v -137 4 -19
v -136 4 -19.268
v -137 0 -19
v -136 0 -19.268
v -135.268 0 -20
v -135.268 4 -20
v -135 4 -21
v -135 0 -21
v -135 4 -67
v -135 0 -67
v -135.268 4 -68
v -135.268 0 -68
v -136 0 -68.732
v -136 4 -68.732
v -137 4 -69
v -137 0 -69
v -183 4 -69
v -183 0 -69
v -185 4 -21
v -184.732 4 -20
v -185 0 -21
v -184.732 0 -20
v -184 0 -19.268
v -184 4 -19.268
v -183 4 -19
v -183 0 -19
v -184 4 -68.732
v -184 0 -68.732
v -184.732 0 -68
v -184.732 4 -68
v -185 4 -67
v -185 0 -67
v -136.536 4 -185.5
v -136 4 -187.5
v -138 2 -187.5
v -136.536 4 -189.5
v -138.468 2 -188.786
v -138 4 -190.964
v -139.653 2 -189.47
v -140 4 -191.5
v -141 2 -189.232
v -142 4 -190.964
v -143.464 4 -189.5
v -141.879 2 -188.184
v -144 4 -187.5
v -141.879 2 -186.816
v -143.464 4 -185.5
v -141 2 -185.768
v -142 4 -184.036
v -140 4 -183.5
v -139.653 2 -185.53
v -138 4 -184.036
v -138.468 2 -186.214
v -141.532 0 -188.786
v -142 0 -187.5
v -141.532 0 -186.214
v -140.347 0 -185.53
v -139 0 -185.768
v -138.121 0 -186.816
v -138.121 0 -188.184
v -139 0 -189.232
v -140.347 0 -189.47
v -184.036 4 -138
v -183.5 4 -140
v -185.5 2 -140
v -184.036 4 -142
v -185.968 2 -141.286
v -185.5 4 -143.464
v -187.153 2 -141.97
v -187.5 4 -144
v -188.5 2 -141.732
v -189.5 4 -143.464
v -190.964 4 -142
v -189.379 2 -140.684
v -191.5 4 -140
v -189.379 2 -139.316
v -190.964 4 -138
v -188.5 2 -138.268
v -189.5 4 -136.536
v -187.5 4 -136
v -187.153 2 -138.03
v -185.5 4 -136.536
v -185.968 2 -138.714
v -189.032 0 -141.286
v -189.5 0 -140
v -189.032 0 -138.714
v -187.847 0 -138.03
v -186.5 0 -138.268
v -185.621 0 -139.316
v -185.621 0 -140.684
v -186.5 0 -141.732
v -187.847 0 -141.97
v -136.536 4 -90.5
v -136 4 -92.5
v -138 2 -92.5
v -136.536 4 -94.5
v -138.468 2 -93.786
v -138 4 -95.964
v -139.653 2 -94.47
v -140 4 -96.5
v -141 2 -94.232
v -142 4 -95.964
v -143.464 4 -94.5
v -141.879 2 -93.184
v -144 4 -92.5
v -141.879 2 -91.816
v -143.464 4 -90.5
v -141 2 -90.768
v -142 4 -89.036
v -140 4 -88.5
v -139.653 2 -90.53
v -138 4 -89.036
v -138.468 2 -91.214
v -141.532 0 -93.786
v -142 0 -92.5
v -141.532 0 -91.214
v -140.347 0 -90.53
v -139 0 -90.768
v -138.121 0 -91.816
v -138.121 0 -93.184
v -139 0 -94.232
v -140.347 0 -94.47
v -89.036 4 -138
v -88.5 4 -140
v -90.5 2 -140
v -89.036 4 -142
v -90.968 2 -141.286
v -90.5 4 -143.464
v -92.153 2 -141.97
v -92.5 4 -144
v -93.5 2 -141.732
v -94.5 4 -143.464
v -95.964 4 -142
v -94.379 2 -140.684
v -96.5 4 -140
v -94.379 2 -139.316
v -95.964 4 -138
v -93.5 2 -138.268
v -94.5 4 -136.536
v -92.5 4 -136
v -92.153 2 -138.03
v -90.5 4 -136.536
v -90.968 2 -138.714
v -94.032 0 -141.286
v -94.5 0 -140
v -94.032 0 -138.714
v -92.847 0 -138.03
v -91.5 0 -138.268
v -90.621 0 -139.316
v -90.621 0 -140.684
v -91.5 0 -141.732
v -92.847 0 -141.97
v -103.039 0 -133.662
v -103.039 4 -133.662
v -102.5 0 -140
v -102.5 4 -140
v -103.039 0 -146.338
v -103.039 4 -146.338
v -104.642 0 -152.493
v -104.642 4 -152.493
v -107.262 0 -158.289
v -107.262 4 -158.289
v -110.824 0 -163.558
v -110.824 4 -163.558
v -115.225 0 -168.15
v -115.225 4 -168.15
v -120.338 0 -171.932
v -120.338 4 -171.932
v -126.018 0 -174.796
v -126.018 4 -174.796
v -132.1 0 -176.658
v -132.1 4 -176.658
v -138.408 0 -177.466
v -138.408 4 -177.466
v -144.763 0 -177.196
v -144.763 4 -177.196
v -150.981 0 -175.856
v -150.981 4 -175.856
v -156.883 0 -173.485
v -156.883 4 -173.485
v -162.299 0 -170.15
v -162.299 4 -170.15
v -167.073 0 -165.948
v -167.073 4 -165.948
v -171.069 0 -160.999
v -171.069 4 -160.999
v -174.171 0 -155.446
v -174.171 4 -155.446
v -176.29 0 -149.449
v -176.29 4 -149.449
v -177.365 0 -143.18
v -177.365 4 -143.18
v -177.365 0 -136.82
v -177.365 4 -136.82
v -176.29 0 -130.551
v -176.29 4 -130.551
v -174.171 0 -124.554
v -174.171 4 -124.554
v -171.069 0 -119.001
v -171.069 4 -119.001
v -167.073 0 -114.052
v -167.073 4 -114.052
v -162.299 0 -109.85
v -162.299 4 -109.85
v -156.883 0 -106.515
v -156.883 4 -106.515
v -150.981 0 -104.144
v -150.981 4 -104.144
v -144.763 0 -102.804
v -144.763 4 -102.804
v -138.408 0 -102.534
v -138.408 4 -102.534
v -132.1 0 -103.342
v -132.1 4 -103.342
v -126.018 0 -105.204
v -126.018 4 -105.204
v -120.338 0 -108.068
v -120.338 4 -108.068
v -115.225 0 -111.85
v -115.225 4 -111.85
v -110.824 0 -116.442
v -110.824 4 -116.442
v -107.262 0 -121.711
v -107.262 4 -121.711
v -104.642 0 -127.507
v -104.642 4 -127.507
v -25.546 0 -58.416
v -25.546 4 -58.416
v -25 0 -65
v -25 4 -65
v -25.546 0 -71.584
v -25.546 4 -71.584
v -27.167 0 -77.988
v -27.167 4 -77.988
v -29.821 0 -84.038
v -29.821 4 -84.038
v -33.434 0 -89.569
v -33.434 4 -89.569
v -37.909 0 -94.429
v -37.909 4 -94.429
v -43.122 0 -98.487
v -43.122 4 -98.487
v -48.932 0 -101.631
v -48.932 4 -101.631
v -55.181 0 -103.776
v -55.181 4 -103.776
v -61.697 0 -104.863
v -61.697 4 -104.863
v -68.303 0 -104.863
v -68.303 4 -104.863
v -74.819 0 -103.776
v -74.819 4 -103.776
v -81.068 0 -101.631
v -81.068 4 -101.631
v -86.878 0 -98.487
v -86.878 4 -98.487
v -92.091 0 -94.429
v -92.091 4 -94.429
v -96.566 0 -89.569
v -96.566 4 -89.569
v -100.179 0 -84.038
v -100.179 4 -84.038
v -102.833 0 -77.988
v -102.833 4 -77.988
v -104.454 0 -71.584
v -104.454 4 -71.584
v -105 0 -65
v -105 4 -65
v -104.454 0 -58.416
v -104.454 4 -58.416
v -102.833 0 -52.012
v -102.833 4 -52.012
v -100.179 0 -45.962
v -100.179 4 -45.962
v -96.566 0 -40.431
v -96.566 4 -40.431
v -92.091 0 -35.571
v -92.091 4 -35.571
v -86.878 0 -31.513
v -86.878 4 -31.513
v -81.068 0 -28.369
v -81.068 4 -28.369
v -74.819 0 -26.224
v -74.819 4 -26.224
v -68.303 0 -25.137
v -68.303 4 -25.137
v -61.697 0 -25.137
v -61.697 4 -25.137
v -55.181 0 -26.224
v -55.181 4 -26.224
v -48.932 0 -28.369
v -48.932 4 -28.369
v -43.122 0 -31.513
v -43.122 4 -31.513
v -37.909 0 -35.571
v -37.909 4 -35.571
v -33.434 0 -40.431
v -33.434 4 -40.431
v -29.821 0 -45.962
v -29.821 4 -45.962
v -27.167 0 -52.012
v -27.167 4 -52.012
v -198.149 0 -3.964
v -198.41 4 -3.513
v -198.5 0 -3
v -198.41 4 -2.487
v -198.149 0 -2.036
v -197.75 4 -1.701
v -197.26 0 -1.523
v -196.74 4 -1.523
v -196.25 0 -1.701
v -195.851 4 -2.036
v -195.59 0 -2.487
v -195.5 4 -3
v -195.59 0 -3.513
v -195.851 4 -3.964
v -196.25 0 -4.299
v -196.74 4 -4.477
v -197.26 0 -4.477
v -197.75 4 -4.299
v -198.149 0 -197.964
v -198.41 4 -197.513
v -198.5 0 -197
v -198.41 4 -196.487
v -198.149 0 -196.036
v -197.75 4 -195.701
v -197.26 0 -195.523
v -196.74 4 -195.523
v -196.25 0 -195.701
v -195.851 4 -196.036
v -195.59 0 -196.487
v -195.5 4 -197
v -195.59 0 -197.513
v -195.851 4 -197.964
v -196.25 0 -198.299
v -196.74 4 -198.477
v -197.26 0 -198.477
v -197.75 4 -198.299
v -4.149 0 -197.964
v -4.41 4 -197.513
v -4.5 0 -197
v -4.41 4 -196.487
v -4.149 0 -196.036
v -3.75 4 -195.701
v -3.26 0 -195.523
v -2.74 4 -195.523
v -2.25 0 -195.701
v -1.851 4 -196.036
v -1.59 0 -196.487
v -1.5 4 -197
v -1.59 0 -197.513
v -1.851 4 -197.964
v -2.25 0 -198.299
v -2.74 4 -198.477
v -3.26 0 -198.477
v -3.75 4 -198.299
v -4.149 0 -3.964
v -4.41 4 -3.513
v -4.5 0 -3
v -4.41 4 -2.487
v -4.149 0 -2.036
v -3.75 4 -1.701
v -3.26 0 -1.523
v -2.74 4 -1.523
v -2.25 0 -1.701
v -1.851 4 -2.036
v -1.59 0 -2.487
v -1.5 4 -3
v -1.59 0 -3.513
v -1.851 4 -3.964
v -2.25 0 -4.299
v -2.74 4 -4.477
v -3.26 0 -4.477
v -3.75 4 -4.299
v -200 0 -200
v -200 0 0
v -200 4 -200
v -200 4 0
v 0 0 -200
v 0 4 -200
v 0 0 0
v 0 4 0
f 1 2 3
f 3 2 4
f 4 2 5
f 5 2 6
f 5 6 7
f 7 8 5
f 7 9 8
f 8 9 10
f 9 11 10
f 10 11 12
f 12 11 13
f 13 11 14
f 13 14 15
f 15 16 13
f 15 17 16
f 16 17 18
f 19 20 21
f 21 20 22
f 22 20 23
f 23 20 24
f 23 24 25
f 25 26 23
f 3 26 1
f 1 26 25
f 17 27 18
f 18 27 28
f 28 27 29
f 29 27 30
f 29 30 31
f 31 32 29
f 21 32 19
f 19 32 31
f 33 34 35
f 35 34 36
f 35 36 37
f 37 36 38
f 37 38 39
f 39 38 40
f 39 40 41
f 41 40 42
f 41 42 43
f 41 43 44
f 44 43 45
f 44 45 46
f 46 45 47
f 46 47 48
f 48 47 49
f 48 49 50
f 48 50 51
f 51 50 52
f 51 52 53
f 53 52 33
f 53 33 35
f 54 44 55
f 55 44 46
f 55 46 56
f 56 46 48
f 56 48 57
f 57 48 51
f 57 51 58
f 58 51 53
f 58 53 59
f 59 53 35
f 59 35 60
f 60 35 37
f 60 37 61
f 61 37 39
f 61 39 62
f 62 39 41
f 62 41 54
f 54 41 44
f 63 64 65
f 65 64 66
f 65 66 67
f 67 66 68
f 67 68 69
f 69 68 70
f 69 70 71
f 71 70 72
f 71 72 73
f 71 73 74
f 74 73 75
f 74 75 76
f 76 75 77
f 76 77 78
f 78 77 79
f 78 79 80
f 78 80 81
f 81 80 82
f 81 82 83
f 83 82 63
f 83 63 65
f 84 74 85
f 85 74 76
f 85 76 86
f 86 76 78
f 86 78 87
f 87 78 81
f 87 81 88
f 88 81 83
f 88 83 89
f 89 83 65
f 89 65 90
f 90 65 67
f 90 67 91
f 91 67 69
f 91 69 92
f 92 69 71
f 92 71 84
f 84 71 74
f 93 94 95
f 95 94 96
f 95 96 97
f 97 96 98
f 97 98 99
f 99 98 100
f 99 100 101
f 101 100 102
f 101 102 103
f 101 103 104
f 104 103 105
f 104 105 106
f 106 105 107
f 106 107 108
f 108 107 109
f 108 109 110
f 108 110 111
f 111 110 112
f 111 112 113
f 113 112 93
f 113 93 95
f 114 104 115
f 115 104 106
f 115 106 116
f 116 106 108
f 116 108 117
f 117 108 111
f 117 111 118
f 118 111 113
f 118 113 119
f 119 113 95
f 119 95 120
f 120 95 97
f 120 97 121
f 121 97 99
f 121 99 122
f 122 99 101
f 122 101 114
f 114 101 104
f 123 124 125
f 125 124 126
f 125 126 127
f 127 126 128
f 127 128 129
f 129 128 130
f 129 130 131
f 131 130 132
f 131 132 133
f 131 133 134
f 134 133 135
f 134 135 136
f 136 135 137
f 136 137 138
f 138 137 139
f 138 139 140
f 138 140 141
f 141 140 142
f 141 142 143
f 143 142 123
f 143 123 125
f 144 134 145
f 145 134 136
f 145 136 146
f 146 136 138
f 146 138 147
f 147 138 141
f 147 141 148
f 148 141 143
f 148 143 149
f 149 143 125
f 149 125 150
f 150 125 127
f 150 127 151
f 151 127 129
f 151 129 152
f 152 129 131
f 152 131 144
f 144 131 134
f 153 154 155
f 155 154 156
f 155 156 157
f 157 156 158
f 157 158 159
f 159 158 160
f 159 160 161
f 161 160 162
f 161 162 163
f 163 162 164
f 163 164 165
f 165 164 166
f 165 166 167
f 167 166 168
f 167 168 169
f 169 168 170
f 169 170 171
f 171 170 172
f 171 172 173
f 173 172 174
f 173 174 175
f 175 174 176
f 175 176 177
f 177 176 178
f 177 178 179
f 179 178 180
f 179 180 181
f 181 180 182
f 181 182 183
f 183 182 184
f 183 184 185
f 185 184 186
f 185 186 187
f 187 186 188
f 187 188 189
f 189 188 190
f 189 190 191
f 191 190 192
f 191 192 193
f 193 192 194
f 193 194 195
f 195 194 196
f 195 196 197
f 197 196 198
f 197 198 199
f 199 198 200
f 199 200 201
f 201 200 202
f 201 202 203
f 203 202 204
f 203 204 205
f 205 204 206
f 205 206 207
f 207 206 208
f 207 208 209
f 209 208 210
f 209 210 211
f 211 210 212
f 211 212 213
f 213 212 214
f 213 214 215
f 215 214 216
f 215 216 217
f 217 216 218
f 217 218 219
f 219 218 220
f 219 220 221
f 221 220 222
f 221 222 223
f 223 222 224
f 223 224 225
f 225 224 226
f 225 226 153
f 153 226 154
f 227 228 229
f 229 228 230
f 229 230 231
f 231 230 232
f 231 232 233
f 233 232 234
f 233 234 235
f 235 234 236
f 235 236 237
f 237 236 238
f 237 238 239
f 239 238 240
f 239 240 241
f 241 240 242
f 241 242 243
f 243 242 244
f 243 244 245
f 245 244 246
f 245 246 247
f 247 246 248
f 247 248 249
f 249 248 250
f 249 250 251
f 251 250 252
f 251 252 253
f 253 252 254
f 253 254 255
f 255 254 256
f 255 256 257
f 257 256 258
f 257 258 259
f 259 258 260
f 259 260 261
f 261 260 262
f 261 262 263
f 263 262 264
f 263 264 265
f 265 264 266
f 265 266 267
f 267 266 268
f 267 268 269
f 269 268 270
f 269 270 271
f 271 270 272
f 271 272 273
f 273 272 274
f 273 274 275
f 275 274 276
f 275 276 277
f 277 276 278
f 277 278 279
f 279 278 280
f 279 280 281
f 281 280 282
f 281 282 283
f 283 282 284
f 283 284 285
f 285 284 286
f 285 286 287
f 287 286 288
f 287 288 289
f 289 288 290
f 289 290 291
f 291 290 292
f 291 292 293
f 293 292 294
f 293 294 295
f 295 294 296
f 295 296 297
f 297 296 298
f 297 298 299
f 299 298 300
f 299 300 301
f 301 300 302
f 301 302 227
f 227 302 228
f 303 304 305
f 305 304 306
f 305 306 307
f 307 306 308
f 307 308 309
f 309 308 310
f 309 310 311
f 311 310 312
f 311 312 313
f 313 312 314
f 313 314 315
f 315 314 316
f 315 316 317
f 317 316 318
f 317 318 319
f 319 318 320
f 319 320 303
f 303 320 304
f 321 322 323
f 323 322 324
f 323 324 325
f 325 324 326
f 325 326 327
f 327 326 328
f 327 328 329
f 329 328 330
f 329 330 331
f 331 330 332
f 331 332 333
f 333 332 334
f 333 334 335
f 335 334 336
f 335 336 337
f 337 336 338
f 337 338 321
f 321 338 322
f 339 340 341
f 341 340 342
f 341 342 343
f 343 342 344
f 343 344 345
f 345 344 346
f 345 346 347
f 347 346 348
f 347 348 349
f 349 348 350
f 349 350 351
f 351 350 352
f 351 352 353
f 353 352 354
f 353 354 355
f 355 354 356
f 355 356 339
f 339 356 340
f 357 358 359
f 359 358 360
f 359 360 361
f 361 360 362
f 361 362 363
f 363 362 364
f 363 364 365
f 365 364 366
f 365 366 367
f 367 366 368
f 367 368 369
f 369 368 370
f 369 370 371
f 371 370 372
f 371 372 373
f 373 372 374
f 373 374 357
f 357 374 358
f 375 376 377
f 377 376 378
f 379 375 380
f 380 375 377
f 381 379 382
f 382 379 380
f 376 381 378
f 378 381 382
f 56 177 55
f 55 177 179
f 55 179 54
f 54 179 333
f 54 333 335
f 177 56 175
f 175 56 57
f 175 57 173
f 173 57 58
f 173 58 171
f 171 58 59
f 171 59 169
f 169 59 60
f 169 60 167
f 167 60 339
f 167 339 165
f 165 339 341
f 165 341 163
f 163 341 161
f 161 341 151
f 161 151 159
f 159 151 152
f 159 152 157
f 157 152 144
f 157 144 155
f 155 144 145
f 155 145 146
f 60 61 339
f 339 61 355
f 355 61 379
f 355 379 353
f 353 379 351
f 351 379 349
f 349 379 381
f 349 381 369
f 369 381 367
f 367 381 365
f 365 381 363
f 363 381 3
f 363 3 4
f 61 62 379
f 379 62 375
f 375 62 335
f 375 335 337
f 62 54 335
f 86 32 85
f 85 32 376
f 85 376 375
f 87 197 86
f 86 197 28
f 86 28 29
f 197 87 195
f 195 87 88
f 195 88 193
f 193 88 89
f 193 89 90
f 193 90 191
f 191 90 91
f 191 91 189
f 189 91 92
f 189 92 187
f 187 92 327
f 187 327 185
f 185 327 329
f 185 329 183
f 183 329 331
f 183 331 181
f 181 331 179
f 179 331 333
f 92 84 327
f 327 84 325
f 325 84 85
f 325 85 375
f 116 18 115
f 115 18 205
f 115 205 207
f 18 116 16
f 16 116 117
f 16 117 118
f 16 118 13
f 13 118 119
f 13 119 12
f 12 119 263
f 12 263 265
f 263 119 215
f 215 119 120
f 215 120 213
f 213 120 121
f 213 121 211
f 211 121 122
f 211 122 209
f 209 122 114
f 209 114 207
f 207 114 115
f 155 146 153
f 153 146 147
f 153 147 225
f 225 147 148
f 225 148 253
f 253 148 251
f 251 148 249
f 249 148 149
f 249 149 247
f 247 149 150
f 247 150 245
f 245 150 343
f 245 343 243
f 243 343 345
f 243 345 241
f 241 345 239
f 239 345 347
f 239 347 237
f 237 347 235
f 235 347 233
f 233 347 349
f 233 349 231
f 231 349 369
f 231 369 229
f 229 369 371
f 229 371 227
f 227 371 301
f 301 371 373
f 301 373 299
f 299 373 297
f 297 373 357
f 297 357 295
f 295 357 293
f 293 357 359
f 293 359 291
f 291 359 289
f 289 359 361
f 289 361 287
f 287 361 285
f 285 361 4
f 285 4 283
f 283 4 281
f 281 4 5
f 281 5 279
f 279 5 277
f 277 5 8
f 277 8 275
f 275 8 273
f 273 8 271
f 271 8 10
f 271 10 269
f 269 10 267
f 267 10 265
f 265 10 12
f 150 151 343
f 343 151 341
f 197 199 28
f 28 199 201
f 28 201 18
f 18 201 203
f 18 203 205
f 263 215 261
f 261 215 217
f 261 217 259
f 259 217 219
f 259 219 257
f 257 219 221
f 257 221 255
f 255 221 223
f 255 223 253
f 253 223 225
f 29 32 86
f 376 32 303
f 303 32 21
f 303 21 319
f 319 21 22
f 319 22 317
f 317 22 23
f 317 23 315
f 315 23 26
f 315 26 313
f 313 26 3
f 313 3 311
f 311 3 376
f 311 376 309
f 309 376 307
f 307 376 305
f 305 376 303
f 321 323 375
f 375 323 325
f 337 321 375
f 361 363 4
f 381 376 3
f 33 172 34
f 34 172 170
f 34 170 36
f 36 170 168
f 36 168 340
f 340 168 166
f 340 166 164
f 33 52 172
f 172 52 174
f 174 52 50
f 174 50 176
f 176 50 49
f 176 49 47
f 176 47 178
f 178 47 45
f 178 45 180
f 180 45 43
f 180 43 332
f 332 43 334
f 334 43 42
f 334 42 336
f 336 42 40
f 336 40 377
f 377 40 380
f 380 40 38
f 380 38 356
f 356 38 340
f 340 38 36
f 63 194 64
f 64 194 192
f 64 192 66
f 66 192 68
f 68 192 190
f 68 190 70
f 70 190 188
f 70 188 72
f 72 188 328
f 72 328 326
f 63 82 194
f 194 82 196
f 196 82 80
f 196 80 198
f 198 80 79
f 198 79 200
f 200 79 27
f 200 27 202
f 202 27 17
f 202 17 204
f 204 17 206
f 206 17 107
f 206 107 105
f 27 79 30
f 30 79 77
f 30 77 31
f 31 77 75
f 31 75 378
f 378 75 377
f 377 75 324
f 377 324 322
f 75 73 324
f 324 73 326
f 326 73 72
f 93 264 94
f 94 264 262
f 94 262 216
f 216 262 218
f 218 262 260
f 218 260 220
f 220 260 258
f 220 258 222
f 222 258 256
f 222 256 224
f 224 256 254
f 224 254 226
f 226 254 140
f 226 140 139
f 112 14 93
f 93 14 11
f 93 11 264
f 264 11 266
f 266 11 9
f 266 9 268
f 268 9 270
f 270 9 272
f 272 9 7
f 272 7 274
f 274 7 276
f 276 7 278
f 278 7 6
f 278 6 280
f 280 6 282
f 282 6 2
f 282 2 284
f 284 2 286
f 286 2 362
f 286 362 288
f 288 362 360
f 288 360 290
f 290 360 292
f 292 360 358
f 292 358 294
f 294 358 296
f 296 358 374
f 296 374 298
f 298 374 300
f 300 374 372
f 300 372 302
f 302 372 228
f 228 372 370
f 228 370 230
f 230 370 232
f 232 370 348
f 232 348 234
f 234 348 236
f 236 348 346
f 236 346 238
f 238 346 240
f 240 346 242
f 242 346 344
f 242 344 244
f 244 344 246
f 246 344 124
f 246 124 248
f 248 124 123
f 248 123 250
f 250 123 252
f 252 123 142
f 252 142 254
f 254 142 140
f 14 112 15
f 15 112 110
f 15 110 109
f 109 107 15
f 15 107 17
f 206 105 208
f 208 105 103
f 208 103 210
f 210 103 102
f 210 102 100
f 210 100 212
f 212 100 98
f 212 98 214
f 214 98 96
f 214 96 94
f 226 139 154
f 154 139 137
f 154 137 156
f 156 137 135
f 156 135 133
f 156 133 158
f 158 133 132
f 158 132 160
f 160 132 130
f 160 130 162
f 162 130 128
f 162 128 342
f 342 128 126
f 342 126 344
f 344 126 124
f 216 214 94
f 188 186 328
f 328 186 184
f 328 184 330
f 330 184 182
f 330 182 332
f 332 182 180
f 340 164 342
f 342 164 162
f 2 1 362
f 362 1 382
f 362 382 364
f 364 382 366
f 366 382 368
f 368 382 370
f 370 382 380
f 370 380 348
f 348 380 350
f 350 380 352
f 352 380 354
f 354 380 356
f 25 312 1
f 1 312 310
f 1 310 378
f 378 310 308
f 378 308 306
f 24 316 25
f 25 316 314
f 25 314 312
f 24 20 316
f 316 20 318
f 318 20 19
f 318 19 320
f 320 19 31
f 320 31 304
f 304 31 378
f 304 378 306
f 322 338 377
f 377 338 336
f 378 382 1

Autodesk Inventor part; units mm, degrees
ref_plane "YZ Plane" through (0, 0, 0) normal (1, 0, 0) x (0, 1, 0)
ref_plane "XZ Plane" through (0, 0, 0) normal (0, 1, 0) x (-1, 0, 0)
ref_plane "XY Plane" through (0, 0, 0) normal (0, 0, 1) x (1, 0, 0)
sketch "Sketch1" plane through (0, 0, 0) normal (0, 1, 0) x (-1, 0, 0)
  line L0 (0, 0) -> (200, 0)
  line L1 (200, 0) -> (200, -200)
  line L2 (200, -200) -> (0, -200)
  line L3 (0, -200) -> (0, 0)
  dimension "d0" = 200
  dimension "d1" = 200
extrude "Extrusion1" add sketch "Sketch1" along normal blind 4
sketch "Sketch2" plane through (0, 4, 0) normal (0, 1, 0) x (1, 0, 0)
  circle A0 centre (-197, 197) radius 1.5
  line L0 (0, 200) -> (-200, 200)
  line L1 (-200, 200) -> (-200, 0)
  circle A1 centre (-197, 3) radius 1.5
  line L2 (-200, 0) -> (0, 0)
  circle A2 centre (-3, 197) radius 1.5
  line L3 (0, 0) -> (0, 200)
  circle A3 centre (-3, 3) radius 1.5
  dimension "d4" = 3
  dimension "d5" = 3
  dimension "d6" = 3
  dimension "d7" = 3
  dimension "d8" = 3
  dimension "d9" = 3
  dimension "d10" = 3
  dimension "d11" = 3
  dimension "d12" = 3
  dimension "d13" = 3
  dimension "d14" = 3
  dimension "d15" = 3
hole "Hole1" at (-197, 4, -197) at (-3, 4, -197) at (-197, 4, -3) at (-3, 4, -3) direction (0, -1, 0) diameter 3 end through all
sketch "Sketch3" plane through (0, 4, 0) normal (0, 1, 0) x (1, 0, 0)
  circle A0 centre (-65, 65) radius 40
  line L0 (0, 0) -> (0, 200) projected
  line L1 (-200, 0) -> (0, 0) projected
  circle A1 centre (-140, 140) radius 37.5
  line L2 (0, 200) -> (-200, 200) projected
  line L3 (-200, 200) -> (-200, 0) projected
  circle A2 centre (-140, 140) radius 55
  line L4 (-185, 78) -> (-135, 78)
  line L5 (-135, 78) -> (-135, 10)
  line L6 (-135, 10) -> (-185, 10)
  line L7 (-185, 10) -> (-185, 78)
  circle A3 centre (-65, 65) radius 50
  circle A4 centre (-65, 65) radius 60
  line L8 (-185, 19) -> (-135, 19)
  line L9 (-135, 19) -> (-135, 69)
  line L10 (-135, 69) -> (-185, 69)
  line L11 (-185, 69) -> (-185, 19)
  dimension "d23" = 80
  dimension "d24" = 65
  dimension "d25" = 65
  dimension "d26" = 75
  dimension "d29" = 140
  dimension "d30" = 140
  dimension "d31" = 110
  dimension "d32" = 50
  dimension "d33" = 68
  dimension "d34" = 10
  dimension "d59" = 100
  dimension "d60" = 120
  dimension "d61" = 135
  dimension "d62" = 50
  dimension "d63" = 50
  dimension "d64" = 9
extrude "Extrusion2" cut sketch "Sketch3" against normal through all contours A0 | A1 | L10 L5 L8 L7
sketch "Sketch4" plane through (0, 4, 0) normal (0, 1, 0) x (1, 0, 0)
  circle A0 centre (-140, 140) radius 37.5 projected
  circle A1 centre (-140, 140) radius 47.5
  circle A2 centre (-140, 187.5) radius 2
  circle A3 centre (-187.5, 140) radius 2
  circle A4 centre (-140, 92.5) radius 2
  circle A5 centre (-92.5, 140) radius 2
  point P0 (0, 0)
  dimension "d38" = 95
  dimension "d39" = 4
  dimension "d42" = 360
hole "Hole2" at (-187.5, 4, -140) at (-140, 4, -92.5) at (-140, 4, -187.5) at (-92.5, 4, -140) direction (0, -1, 0) diameter 4 end through all countersink diameter 8 countersink angle 90
thread "Thread1" size "M4x0.7" class "6H" standard "ANSI Metric M Profile" full length
thread "Thread2" size "M4x0.7" class "6H" standard "ANSI Metric M Profile" full length
thread "Thread3" size "M4x0.7" class "6H" standard "ANSI Metric M Profile" full length
thread "Thread4" size "M4x0.7" class "6H" standard "ANSI Metric M Profile" full length
thread "Thread5" size "M3x0.5" class "6H" standard "ANSI Metric M Profile" full length
thread "Thread6" size "M3x0.5" class "6H" standard "ANSI Metric M Profile" full length
thread "Thread7" size "M3x0.5" class "6H" standard "ANSI Metric M Profile" full length
thread "Thread8" size "M3x0.5" class "6H" standard "ANSI Metric M Profile" full length
fillet "Fillet1" radius 2 4 edges at (-185, 2, -69) (-185, 2, -19) (-135, 2, -69) (-135, 2, -19)
properties part number "Housing_lid" material "Aluminum 6061"
